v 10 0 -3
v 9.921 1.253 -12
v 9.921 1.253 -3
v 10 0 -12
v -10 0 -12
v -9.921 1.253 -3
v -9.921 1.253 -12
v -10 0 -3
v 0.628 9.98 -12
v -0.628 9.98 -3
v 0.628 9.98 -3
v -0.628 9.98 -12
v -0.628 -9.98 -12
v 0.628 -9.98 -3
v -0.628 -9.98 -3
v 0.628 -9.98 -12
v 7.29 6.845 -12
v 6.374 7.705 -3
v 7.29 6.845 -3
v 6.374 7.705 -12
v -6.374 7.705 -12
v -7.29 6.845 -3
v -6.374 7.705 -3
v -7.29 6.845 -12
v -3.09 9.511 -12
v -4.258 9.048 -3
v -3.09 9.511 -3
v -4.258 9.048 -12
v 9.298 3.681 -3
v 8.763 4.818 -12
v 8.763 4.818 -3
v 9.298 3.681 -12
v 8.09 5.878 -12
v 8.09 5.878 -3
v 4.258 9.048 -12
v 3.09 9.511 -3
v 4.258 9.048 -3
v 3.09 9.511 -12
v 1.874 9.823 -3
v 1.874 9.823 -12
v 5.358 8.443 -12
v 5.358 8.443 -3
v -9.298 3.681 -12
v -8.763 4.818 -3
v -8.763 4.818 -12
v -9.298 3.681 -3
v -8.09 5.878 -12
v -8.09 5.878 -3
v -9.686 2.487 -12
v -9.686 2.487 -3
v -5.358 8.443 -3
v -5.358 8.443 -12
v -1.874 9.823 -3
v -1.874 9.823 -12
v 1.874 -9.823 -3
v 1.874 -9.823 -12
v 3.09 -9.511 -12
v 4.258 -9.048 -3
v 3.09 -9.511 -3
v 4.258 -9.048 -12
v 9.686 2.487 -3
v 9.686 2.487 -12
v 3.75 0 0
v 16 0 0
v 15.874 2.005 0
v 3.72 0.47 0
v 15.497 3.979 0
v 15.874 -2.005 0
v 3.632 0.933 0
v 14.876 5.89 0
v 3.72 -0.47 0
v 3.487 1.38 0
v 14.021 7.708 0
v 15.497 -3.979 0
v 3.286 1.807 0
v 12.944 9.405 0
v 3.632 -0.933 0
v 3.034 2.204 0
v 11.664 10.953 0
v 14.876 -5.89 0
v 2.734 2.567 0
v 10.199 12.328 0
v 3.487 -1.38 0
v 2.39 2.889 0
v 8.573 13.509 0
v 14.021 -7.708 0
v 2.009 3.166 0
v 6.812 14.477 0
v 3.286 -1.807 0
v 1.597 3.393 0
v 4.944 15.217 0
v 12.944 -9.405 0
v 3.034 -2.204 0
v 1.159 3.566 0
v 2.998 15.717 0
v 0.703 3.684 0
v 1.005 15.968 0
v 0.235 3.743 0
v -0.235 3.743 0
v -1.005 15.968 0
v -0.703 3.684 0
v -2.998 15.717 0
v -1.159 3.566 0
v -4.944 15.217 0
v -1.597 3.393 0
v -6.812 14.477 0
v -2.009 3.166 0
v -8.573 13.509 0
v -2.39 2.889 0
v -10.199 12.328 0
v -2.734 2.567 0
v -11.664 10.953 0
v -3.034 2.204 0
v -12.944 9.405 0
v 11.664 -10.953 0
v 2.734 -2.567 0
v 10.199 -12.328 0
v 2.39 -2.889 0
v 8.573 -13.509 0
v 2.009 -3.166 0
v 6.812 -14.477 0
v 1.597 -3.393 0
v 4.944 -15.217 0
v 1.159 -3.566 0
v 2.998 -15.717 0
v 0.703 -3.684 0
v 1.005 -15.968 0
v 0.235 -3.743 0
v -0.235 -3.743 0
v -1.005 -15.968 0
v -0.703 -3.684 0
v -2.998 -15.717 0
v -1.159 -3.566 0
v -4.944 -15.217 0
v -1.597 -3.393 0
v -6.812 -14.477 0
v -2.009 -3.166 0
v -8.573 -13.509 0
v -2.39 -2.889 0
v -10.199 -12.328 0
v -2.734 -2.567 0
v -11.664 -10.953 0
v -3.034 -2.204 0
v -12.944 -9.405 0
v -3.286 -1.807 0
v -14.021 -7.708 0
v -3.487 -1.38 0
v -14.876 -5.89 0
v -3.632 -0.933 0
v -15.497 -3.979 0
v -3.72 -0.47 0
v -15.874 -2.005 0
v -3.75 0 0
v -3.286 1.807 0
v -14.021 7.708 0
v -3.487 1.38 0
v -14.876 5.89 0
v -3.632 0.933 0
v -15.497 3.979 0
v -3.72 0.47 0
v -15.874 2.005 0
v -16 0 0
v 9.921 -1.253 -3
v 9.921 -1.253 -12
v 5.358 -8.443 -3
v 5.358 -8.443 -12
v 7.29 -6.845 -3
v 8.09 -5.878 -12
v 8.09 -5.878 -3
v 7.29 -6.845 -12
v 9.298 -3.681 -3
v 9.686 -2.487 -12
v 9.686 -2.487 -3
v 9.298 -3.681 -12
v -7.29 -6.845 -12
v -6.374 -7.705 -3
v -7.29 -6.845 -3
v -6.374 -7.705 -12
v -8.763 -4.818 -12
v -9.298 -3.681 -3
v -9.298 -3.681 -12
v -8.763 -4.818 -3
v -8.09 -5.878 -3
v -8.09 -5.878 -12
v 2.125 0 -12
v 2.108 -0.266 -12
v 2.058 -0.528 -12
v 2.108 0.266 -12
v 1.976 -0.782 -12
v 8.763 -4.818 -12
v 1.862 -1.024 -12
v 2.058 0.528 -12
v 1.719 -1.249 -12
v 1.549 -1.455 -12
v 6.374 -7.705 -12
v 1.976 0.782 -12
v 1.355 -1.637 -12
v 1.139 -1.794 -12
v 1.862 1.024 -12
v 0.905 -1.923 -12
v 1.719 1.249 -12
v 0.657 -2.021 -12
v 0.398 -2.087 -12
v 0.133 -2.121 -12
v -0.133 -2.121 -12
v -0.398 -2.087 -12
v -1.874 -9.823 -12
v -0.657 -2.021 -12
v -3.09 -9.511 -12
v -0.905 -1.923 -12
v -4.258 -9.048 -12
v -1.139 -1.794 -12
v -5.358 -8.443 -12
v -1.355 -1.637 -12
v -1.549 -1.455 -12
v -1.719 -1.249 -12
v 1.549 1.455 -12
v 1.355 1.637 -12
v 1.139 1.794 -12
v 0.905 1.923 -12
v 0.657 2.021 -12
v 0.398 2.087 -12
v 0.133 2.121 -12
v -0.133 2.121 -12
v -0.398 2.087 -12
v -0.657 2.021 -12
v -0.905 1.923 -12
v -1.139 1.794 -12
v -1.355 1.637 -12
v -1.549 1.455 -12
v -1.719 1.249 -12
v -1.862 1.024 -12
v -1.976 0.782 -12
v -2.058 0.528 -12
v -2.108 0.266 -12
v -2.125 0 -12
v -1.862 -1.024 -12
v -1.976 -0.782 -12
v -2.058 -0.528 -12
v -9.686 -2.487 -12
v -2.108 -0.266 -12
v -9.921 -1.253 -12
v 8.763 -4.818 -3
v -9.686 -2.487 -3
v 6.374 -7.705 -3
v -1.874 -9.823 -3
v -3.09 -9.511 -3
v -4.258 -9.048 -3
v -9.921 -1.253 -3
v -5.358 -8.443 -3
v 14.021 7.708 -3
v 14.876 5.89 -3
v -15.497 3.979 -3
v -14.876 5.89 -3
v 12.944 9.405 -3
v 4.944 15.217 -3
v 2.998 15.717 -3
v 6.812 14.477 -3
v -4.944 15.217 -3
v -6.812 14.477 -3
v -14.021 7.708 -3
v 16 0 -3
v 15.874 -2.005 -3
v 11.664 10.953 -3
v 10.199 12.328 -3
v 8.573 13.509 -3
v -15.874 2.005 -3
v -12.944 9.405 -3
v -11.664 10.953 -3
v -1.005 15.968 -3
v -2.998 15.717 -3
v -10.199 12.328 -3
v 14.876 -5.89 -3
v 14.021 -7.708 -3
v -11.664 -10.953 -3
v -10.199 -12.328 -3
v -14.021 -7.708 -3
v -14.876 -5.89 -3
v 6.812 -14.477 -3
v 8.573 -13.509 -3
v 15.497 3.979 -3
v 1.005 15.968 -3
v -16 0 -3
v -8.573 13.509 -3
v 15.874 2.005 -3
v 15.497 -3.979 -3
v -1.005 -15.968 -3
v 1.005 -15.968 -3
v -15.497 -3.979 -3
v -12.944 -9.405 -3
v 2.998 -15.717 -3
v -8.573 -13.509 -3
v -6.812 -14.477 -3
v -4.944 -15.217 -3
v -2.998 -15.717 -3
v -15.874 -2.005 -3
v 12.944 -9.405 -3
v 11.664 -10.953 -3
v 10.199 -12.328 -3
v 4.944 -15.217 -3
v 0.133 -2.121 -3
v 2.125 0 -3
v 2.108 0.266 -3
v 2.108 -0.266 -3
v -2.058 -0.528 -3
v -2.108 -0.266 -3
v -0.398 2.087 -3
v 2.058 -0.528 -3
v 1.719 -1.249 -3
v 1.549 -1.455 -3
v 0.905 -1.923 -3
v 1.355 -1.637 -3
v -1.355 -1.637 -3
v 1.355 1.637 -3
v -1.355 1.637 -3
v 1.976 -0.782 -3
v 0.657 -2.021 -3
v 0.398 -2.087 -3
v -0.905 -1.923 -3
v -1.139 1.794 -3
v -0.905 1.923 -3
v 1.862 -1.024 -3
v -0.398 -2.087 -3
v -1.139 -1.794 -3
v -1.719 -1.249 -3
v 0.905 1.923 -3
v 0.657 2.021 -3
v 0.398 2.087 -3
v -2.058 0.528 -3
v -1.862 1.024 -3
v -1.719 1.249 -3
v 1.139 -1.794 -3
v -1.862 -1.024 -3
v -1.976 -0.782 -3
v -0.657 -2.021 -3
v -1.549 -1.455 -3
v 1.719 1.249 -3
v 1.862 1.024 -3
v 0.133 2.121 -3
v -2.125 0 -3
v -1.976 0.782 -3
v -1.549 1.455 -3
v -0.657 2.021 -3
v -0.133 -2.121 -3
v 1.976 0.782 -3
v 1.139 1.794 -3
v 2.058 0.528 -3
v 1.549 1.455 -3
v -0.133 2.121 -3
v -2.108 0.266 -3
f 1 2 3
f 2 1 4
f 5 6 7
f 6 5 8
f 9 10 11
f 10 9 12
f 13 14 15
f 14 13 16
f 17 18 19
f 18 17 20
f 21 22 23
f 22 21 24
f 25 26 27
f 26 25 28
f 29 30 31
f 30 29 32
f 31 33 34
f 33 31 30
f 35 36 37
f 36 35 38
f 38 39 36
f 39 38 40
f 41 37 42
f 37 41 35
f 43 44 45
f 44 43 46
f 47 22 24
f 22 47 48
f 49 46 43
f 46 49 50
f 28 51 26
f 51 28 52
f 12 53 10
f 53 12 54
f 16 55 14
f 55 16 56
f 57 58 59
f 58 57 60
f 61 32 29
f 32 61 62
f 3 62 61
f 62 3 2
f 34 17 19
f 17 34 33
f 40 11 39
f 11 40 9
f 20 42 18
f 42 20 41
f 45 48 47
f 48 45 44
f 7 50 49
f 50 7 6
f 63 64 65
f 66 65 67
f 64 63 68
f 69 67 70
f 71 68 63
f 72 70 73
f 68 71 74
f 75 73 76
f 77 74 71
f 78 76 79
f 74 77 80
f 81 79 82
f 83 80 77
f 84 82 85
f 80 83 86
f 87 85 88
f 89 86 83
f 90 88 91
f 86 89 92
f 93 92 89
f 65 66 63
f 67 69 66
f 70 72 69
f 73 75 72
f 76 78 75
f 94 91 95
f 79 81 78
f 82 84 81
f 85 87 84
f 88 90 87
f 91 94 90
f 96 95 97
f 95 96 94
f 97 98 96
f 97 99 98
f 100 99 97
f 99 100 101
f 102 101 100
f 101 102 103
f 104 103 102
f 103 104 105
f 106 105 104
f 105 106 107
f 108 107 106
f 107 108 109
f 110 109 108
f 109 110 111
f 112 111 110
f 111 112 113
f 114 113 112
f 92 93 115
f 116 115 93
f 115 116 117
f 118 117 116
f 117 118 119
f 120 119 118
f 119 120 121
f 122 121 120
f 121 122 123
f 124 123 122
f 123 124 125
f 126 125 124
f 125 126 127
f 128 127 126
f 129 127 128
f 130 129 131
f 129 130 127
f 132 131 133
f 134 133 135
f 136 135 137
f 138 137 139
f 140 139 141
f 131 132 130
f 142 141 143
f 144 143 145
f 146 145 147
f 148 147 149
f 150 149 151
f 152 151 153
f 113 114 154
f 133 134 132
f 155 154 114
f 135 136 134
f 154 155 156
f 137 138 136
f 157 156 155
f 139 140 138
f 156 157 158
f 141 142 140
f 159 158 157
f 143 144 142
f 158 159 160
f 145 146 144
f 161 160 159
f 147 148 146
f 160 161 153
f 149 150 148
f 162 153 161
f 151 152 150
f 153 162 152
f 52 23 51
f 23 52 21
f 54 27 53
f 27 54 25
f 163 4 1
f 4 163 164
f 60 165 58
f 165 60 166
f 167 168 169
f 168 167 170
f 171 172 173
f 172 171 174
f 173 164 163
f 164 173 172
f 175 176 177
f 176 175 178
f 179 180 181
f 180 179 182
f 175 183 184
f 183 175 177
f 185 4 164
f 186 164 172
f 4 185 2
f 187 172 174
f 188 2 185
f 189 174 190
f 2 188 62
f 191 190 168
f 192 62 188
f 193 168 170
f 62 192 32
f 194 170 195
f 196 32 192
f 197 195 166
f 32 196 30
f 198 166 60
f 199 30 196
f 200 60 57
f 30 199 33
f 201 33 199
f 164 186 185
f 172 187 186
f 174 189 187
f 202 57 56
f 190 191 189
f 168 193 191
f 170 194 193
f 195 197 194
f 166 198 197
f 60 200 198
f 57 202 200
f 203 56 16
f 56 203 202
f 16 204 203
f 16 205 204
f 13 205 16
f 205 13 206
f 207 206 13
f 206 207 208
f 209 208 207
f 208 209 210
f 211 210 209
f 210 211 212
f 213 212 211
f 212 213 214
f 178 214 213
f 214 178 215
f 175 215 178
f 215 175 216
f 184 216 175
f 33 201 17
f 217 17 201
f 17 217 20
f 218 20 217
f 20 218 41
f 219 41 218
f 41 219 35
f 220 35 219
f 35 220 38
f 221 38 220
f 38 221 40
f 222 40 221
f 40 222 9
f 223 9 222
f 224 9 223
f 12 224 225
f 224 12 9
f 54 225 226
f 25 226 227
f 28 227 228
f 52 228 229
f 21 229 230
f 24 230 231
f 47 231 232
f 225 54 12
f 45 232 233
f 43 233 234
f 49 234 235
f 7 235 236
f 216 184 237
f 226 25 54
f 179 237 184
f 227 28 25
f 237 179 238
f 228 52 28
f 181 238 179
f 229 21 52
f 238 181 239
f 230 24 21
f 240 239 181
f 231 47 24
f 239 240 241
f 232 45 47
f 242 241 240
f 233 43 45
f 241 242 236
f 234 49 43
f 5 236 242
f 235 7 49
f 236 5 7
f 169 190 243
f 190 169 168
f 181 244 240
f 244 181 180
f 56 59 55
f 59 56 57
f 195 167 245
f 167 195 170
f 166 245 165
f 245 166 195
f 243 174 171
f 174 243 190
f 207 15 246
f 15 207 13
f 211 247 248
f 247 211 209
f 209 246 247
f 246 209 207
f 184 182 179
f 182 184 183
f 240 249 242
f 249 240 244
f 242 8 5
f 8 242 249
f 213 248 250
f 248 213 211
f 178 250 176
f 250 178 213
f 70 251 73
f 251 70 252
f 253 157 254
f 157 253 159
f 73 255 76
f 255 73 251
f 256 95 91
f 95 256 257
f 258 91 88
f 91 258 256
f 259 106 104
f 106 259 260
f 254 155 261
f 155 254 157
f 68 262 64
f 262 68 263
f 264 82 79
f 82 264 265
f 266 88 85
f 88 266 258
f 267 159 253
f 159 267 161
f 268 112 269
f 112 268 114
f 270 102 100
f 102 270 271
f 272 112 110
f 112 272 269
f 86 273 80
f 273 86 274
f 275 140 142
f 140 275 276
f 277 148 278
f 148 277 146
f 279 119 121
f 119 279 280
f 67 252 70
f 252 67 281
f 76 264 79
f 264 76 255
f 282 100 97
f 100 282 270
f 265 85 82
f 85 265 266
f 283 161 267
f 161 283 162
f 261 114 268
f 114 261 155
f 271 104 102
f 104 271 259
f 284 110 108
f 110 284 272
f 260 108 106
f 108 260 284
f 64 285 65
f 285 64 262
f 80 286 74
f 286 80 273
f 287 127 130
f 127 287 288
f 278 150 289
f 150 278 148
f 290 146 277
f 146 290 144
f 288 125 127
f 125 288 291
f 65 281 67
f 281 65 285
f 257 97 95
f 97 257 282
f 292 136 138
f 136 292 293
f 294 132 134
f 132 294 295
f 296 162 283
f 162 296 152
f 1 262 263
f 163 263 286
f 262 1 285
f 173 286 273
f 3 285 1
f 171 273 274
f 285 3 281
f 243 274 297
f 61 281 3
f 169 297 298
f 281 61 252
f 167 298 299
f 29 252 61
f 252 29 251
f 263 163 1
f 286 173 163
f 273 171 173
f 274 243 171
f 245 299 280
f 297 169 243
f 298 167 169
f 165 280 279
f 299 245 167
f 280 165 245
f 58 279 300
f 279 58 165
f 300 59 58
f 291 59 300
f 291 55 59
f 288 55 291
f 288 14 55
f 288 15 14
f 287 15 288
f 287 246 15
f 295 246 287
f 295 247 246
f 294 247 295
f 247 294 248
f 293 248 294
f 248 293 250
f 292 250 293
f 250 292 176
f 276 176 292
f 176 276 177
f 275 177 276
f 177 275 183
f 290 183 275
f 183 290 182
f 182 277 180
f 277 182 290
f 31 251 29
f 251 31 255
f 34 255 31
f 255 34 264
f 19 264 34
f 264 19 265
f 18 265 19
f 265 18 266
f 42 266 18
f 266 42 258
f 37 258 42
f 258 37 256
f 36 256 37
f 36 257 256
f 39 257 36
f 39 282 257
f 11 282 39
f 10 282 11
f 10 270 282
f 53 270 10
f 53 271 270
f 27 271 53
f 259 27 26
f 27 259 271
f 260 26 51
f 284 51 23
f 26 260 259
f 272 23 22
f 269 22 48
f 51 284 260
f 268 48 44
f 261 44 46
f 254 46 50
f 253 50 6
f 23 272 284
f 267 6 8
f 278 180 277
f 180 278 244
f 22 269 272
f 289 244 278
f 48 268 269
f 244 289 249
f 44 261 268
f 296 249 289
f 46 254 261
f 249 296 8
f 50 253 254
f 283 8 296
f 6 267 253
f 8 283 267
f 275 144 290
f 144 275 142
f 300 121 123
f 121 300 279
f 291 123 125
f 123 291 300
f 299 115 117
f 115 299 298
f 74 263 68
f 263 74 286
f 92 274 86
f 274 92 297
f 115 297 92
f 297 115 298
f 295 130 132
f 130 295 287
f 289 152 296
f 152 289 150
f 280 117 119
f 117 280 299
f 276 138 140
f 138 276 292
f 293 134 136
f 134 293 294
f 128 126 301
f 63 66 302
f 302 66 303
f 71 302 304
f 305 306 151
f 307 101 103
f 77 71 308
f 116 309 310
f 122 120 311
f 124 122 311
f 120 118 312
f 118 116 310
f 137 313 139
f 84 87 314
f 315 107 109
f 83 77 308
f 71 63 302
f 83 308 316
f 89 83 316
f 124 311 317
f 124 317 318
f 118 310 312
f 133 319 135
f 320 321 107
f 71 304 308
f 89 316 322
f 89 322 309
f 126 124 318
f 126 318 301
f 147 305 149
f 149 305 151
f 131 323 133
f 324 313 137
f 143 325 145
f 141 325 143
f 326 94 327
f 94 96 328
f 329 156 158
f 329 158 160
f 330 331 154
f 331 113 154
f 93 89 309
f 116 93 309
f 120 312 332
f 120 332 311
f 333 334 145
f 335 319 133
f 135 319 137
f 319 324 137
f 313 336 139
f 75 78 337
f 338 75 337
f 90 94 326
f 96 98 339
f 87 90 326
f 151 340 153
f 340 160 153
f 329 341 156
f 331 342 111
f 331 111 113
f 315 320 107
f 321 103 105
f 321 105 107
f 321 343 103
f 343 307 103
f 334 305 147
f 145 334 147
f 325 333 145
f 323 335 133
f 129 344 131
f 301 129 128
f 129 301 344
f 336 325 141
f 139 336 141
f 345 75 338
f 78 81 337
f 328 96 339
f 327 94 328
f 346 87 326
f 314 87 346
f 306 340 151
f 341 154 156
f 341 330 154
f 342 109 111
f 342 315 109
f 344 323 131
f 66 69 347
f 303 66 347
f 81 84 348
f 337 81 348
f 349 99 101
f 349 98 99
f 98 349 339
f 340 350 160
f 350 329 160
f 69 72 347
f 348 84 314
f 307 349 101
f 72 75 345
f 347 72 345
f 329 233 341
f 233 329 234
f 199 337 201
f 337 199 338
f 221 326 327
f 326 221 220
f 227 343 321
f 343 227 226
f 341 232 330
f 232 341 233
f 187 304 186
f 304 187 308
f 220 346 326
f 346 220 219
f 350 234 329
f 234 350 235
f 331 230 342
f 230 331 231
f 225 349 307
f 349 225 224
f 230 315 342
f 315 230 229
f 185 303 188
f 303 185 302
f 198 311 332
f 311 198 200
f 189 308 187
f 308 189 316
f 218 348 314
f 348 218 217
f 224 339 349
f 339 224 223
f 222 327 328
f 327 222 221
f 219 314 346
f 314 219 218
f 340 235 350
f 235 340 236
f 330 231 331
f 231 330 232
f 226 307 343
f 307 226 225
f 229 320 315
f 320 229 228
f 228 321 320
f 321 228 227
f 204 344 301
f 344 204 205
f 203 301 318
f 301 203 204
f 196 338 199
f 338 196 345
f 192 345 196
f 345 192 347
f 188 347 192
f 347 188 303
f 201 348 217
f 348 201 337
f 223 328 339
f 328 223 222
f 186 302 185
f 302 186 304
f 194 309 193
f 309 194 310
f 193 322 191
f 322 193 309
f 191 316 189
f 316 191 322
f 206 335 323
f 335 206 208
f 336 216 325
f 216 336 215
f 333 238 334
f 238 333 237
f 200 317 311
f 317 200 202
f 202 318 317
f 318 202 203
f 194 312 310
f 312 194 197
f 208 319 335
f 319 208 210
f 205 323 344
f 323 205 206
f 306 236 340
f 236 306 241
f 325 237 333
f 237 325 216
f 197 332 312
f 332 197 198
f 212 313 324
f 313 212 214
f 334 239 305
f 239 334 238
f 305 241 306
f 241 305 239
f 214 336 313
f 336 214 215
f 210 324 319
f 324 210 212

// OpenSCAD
$fn = 50;


difference() {
	union() {
		translate(v = [0, 0, -12.0000000000]) {
			cylinder(h = 12, r = 10.0000000000);
		}
		translate(v = [0, 0, -3.0000000000]) {
			cylinder(h = 3, r = 16.0000000000);
		}
	}
	union() {
		translate(v = [0, 0, 0]) {
			rotate(a = [0, 0, 0]) {
				difference() {
					union() {
						#translate(v = [0, 0, -12.0000000000]) {
							cylinder(h = 12, r = 2.0000000000);
						}
						#translate(v = [0, 0, -3]) {
							cylinder(h = 3, r1 = 2.1250000000, r2 = 3.7500000000);
						}
						#translate(v = [0, 0, -12.0000000000]) {
							cylinder(h = 12, r = 2.1250000000);
						}
						#translate(v = [0, 0, -12.0000000000]) {
							cylinder(h = 12, r = 2.0000000000);
						}
					}
					union();
				}
			}
		}
	}
}
